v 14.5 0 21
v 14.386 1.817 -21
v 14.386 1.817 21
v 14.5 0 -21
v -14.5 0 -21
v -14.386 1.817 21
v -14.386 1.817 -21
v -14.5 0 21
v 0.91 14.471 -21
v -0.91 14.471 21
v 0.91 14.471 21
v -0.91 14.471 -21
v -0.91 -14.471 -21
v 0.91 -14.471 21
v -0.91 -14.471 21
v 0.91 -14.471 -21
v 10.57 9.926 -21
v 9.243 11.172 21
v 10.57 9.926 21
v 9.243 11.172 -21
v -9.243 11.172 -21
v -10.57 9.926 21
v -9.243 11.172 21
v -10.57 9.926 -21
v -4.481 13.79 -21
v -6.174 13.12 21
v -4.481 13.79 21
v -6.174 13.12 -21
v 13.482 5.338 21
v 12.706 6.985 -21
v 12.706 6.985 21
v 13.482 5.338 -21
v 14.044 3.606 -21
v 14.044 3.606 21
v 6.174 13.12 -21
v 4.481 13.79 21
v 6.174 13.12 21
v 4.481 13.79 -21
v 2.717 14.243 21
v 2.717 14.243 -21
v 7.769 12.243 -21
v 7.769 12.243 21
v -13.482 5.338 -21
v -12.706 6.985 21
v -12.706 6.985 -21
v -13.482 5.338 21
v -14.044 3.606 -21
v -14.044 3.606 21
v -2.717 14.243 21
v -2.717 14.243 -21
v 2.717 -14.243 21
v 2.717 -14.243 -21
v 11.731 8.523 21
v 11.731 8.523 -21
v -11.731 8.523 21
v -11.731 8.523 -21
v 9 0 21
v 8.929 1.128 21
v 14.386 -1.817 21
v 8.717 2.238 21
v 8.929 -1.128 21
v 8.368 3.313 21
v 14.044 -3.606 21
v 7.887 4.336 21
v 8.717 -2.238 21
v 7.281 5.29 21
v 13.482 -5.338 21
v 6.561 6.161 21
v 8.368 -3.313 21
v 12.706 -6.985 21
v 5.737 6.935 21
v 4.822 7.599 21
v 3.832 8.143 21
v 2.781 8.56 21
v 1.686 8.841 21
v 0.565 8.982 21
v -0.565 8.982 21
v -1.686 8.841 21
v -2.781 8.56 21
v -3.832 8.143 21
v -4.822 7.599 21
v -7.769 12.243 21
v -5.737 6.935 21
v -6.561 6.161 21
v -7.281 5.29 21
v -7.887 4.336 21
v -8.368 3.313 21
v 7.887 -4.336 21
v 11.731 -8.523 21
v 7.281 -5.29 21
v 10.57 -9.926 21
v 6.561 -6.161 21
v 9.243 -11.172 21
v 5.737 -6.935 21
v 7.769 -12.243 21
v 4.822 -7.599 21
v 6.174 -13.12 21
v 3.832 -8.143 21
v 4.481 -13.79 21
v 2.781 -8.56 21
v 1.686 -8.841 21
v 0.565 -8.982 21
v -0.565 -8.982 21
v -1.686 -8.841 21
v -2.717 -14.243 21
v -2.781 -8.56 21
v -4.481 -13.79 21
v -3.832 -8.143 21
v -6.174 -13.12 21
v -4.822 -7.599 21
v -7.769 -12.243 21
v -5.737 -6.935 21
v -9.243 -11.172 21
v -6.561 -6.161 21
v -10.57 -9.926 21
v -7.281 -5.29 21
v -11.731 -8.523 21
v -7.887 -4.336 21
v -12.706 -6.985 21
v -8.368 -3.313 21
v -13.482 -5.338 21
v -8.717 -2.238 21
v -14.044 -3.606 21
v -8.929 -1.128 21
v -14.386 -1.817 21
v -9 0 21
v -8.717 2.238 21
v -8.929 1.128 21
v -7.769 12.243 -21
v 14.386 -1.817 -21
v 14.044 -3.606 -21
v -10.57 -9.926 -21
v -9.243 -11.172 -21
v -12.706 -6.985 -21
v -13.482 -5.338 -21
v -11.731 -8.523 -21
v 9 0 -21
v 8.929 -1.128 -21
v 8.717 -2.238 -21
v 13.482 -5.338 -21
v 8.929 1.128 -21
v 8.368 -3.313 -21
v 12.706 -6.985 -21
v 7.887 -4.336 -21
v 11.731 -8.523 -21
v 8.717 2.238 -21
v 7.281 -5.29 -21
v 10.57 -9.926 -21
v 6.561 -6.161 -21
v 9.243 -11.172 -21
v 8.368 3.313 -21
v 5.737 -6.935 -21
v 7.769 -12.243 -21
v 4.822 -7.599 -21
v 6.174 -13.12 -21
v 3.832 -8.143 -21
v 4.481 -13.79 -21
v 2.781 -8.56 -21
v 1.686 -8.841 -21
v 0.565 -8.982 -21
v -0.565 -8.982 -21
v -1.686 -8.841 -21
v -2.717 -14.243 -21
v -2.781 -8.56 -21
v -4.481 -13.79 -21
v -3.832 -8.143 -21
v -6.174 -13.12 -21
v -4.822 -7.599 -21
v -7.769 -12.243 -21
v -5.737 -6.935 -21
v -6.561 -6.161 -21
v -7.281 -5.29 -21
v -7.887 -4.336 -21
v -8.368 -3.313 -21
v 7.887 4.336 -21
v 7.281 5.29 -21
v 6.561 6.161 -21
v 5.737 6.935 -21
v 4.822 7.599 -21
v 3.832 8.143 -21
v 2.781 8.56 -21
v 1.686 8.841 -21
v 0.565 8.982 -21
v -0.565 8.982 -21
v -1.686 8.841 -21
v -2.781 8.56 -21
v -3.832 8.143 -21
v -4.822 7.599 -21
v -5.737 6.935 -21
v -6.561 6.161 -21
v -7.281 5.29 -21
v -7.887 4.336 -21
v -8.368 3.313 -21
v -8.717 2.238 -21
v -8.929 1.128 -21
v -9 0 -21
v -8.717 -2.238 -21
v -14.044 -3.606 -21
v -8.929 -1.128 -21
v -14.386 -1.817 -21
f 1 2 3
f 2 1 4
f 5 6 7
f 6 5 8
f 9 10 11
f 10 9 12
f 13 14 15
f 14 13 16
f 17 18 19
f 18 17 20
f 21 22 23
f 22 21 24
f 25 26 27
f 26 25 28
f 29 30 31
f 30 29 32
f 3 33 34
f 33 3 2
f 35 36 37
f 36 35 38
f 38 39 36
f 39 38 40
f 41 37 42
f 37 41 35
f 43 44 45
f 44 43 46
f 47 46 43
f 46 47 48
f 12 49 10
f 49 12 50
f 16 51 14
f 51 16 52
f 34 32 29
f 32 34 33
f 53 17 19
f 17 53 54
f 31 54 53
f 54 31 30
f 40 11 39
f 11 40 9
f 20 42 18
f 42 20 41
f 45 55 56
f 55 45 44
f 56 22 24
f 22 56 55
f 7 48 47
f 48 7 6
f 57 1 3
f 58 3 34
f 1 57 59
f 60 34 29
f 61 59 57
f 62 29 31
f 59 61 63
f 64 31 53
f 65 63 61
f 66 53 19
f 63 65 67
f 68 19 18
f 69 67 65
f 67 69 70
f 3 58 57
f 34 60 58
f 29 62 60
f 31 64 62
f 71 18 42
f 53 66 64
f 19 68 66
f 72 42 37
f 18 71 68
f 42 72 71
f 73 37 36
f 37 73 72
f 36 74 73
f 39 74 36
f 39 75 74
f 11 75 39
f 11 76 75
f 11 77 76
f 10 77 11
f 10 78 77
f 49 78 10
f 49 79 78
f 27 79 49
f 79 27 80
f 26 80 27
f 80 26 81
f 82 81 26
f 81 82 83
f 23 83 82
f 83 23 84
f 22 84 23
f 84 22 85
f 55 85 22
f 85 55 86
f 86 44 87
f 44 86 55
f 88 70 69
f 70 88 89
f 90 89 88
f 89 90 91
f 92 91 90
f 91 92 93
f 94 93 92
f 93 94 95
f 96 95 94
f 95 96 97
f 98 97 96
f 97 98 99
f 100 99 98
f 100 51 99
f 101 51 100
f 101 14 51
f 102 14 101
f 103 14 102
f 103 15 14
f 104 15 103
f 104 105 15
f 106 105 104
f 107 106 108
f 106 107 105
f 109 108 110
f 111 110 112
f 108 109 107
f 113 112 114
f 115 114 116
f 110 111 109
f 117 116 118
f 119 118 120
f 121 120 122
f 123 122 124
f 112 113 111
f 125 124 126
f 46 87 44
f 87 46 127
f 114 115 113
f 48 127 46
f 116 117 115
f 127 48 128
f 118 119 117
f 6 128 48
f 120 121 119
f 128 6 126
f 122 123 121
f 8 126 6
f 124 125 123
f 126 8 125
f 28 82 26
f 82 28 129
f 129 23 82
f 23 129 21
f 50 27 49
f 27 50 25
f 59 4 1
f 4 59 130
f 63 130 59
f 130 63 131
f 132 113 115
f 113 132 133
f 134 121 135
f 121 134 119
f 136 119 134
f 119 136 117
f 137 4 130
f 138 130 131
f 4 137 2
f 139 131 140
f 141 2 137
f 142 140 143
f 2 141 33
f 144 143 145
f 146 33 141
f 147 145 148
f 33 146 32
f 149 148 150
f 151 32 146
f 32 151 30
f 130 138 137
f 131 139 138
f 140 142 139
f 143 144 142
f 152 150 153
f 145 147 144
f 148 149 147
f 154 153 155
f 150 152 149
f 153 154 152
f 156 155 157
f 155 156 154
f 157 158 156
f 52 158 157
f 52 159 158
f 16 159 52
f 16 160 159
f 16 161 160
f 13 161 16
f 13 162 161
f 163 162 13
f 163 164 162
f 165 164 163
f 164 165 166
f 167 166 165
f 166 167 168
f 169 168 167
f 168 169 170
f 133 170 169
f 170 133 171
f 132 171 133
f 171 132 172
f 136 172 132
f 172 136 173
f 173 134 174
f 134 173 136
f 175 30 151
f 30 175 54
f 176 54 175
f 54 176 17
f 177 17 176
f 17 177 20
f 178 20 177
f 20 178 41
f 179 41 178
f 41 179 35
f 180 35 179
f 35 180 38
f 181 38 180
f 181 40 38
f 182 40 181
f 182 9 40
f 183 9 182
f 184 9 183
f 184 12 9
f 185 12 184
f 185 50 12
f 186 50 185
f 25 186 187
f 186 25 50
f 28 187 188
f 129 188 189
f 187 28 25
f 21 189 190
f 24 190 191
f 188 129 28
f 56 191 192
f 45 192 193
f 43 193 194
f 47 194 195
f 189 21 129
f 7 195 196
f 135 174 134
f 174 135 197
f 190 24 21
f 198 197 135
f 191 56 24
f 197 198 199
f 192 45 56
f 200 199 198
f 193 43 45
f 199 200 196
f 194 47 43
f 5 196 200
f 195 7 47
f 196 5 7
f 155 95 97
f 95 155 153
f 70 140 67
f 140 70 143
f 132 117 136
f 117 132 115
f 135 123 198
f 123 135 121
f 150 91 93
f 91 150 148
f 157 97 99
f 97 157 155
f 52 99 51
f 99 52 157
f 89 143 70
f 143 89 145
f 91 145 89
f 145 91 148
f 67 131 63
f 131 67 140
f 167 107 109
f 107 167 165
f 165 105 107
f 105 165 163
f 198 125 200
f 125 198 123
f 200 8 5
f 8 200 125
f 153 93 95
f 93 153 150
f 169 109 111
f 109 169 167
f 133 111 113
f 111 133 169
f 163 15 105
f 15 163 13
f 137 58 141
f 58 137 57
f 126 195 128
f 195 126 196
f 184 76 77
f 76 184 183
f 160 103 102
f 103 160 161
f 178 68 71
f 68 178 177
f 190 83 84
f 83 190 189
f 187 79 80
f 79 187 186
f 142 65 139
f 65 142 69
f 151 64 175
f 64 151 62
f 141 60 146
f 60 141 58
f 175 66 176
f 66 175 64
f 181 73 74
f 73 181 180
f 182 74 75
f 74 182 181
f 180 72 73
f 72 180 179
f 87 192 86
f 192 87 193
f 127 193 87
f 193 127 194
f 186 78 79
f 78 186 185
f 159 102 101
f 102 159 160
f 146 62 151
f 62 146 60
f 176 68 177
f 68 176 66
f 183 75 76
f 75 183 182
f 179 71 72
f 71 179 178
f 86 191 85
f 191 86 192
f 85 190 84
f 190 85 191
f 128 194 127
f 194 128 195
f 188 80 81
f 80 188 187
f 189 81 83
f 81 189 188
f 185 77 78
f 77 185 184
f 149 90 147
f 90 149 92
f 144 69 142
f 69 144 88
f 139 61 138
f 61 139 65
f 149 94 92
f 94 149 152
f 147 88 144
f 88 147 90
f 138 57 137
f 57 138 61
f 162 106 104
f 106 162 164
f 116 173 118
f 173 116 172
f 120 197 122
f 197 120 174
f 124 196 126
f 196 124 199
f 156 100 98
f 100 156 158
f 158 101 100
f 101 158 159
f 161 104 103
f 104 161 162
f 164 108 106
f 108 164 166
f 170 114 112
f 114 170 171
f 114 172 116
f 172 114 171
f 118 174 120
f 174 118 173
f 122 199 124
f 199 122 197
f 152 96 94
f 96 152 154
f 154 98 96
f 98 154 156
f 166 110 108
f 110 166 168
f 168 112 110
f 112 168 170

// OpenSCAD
$fn = 50;


difference() {
	union() {
		translate(v = [0, 0, -21.0000000000]) {
			cylinder(h = 42, r = 14.5000000000);
		}
	}
	union() {
		translate(v = [0, 0, -100.0000000000]) {
			cylinder(h = 200, r = 9);
		}
	}
}
